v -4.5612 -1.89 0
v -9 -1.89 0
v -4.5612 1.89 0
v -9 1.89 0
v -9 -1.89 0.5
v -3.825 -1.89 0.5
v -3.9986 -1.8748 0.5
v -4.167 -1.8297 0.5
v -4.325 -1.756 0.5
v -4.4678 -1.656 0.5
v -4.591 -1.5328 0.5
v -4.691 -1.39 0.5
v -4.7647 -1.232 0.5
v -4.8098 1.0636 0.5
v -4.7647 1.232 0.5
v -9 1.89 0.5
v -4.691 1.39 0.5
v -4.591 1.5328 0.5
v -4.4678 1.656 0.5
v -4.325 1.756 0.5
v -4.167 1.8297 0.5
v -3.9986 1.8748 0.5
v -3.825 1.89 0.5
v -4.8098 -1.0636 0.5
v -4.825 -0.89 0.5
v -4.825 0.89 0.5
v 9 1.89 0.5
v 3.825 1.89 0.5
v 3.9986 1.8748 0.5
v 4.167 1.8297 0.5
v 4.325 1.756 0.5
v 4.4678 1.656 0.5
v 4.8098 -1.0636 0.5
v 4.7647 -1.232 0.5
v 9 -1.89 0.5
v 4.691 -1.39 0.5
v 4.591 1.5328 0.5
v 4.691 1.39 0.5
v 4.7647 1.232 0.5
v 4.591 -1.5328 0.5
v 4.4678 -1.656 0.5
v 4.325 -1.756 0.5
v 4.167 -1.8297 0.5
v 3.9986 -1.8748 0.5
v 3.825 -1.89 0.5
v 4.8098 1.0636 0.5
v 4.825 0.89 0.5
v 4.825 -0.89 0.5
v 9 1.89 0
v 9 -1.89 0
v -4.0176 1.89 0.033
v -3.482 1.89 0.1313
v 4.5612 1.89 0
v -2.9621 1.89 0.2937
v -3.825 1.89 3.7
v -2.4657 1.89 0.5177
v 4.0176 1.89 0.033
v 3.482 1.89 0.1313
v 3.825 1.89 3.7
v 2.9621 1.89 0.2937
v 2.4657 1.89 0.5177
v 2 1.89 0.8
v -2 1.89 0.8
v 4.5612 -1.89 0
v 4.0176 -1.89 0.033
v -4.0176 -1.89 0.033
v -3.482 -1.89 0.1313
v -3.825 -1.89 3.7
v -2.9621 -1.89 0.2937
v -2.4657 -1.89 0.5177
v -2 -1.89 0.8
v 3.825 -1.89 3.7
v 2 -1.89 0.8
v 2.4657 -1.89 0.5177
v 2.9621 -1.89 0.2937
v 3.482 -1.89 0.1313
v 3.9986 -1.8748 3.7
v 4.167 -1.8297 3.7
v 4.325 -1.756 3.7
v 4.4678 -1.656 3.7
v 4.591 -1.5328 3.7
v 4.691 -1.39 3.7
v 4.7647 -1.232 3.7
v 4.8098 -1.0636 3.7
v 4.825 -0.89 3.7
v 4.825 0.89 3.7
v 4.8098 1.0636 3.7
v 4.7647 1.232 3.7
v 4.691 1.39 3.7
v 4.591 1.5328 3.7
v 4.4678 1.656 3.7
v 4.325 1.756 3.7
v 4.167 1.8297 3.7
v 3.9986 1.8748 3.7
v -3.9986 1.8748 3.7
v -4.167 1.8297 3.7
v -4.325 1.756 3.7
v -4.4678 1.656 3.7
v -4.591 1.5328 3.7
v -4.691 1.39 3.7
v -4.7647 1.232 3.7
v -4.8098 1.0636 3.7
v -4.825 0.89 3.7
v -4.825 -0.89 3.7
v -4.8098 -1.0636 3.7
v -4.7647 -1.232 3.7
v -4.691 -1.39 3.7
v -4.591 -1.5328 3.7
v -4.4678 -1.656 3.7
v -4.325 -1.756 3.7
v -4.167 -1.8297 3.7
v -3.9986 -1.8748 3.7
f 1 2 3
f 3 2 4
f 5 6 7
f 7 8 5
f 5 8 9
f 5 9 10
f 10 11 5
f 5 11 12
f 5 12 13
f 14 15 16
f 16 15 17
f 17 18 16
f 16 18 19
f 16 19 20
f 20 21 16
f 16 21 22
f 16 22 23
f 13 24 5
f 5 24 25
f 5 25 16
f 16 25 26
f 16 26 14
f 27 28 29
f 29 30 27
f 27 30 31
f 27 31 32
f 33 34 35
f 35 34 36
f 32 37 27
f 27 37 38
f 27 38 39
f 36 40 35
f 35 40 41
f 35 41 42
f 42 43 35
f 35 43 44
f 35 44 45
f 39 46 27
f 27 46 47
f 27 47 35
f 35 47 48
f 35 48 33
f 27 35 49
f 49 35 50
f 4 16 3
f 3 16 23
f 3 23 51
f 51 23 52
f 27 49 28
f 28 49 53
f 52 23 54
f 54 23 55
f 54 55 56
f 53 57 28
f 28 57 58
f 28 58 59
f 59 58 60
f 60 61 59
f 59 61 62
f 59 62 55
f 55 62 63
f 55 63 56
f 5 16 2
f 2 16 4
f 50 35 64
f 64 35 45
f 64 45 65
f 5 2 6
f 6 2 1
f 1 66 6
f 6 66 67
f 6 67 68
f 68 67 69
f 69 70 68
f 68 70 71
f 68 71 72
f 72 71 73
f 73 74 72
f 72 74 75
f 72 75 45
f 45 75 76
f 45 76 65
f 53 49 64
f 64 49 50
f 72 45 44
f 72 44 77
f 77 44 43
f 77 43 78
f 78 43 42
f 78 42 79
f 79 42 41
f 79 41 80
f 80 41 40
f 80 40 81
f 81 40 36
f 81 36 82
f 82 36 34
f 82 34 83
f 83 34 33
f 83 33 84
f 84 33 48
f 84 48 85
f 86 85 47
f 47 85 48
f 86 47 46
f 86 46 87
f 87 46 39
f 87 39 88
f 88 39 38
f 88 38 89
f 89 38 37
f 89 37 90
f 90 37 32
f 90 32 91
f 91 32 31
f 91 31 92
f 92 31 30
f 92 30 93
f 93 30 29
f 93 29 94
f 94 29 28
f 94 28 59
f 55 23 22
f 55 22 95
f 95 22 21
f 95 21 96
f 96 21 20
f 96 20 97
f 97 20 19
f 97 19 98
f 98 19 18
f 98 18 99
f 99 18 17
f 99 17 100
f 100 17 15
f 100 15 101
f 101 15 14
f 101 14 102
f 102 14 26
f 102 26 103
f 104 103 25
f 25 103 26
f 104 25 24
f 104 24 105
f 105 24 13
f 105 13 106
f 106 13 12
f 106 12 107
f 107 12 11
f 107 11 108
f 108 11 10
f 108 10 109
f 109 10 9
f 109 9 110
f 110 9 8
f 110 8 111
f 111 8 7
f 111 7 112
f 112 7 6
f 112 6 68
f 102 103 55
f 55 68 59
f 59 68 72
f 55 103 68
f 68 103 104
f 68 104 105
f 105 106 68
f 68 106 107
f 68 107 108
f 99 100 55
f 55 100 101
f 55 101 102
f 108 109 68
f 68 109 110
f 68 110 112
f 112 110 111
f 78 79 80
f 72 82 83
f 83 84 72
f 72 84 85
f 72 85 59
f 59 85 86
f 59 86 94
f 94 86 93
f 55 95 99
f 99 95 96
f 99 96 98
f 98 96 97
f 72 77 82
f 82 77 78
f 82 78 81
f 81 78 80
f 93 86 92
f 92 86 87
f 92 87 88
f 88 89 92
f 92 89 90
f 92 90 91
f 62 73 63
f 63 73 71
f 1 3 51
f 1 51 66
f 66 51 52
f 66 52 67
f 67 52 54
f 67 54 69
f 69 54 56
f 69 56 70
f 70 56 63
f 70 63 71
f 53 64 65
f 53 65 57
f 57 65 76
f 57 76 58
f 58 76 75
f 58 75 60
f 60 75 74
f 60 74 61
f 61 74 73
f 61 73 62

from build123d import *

# Parameters (mm, degrees)
SKETCH1_W           = 18
SKETCH1_H           = 3.78
BOSS_EXTRUDE1_DEPTH = 0.5
BOSS_EXTRUDE2_DEPTH = 3.2
SKETCH4_W           = 4
SKETCH4_H           = 3.78
CUT_EXTRUDE1_DEPTH  = 0.8
FILLET1_R           = 4.5


with BuildPart() as part:
    # Sketch1 → Boss-Extrude1 (new body)
    with BuildSketch(Plane.XY):
        Rectangle(SKETCH1_W, SKETCH1_H)
    extrude(amount=BOSS_EXTRUDE1_DEPTH)

    # Sketch3 → Boss-Extrude2 (add)
    with BuildSketch(Plane.XY.offset(0.5)):
        with BuildLine():
            Line((-3.825, -1.89), (3.825, -1.89))
            ThreePointArc((3.825, -1.89), (4.532106781, -1.597106781), (4.825, -0.89))
            Line((4.825, -0.89), (4.825, 0.89))
            ThreePointArc((4.825, 0.89), (4.532106781, 1.597106781), (3.825, 1.89))
            Line((3.825, 1.89), (-3.825, 1.89))
            ThreePointArc((-3.825, 1.89), (-4.532106781, 1.597106781), (-4.825, 0.89))
            Line((-4.825, 0.89), (-4.825, -0.89))
            ThreePointArc((-4.825, -0.89), (-4.532106781, -1.597106781), (-3.825, -1.89))
        make_face()
    extrude(amount=BOSS_EXTRUDE2_DEPTH)

    # Sketch4 → Cut-Extrude1 (cut)
    with BuildSketch(Plane(origin=(0, 0, 0), x_dir=(-1, 0, 0), z_dir=(0, 0, -1))):
        Rectangle(SKETCH4_W, SKETCH4_H)
    extrude(amount=-CUT_EXTRUDE1_DEPTH, mode=Mode.SUBTRACT)

    # Fillet1
    # the kernel refuses this fillet: 4.5 mm, written as the material it takes off along each edge
    with BuildSketch(Plane(origin=(-2, -8.293124237, 0), x_dir=(-1, 0, 0), z_dir=(0, 1, 0))) as fillet1_piece_1:
        with BuildLine():
            CenterArc((2.561249695, 4.5), FILLET1_R, 235.307869415, 34.692130585)
            Line((0, 0.8), (-0.051224994, 0.726))
            ThreePointArc((-0.051224994, 0.726), (-0.09, 0.4), (-0.09, 0))
            Line((-0.09, 0), (0, -0.09))
            Line((0, -0.09), (2.561249695, -0.09))
            Line((2.561249695, -0.09), (2.561249695, 0))
        make_face()
    extrude(amount=16.586248475, mode=Mode.SUBTRACT)
    with BuildSketch(Plane(origin=(2, 8.293124237, 0), x_dir=(1.0735856648108615e-12, 0, 1.0), z_dir=(0, -1, 0))) as fillet1_piece_2:
        with BuildLine():
            CenterArc((4.5, -2.561249695), FILLET1_R, 145.307869415, 34.692130585)
            Line((0, -2.561249695), (-0.09, -2.561249695))
            Line((-0.09, -2.561249695), (-0.09, 0))
            Line((-0.09, 0), (0, 0.09))
            ThreePointArc((0, 0.09), (0.4, 0.09), (0.726, 0.051224994))
            Line((0.726, 0.051224994), (0.8, 0))
        make_face()
    extrude(amount=16.586248475, mode=Mode.SUBTRACT)


solid = part.part
